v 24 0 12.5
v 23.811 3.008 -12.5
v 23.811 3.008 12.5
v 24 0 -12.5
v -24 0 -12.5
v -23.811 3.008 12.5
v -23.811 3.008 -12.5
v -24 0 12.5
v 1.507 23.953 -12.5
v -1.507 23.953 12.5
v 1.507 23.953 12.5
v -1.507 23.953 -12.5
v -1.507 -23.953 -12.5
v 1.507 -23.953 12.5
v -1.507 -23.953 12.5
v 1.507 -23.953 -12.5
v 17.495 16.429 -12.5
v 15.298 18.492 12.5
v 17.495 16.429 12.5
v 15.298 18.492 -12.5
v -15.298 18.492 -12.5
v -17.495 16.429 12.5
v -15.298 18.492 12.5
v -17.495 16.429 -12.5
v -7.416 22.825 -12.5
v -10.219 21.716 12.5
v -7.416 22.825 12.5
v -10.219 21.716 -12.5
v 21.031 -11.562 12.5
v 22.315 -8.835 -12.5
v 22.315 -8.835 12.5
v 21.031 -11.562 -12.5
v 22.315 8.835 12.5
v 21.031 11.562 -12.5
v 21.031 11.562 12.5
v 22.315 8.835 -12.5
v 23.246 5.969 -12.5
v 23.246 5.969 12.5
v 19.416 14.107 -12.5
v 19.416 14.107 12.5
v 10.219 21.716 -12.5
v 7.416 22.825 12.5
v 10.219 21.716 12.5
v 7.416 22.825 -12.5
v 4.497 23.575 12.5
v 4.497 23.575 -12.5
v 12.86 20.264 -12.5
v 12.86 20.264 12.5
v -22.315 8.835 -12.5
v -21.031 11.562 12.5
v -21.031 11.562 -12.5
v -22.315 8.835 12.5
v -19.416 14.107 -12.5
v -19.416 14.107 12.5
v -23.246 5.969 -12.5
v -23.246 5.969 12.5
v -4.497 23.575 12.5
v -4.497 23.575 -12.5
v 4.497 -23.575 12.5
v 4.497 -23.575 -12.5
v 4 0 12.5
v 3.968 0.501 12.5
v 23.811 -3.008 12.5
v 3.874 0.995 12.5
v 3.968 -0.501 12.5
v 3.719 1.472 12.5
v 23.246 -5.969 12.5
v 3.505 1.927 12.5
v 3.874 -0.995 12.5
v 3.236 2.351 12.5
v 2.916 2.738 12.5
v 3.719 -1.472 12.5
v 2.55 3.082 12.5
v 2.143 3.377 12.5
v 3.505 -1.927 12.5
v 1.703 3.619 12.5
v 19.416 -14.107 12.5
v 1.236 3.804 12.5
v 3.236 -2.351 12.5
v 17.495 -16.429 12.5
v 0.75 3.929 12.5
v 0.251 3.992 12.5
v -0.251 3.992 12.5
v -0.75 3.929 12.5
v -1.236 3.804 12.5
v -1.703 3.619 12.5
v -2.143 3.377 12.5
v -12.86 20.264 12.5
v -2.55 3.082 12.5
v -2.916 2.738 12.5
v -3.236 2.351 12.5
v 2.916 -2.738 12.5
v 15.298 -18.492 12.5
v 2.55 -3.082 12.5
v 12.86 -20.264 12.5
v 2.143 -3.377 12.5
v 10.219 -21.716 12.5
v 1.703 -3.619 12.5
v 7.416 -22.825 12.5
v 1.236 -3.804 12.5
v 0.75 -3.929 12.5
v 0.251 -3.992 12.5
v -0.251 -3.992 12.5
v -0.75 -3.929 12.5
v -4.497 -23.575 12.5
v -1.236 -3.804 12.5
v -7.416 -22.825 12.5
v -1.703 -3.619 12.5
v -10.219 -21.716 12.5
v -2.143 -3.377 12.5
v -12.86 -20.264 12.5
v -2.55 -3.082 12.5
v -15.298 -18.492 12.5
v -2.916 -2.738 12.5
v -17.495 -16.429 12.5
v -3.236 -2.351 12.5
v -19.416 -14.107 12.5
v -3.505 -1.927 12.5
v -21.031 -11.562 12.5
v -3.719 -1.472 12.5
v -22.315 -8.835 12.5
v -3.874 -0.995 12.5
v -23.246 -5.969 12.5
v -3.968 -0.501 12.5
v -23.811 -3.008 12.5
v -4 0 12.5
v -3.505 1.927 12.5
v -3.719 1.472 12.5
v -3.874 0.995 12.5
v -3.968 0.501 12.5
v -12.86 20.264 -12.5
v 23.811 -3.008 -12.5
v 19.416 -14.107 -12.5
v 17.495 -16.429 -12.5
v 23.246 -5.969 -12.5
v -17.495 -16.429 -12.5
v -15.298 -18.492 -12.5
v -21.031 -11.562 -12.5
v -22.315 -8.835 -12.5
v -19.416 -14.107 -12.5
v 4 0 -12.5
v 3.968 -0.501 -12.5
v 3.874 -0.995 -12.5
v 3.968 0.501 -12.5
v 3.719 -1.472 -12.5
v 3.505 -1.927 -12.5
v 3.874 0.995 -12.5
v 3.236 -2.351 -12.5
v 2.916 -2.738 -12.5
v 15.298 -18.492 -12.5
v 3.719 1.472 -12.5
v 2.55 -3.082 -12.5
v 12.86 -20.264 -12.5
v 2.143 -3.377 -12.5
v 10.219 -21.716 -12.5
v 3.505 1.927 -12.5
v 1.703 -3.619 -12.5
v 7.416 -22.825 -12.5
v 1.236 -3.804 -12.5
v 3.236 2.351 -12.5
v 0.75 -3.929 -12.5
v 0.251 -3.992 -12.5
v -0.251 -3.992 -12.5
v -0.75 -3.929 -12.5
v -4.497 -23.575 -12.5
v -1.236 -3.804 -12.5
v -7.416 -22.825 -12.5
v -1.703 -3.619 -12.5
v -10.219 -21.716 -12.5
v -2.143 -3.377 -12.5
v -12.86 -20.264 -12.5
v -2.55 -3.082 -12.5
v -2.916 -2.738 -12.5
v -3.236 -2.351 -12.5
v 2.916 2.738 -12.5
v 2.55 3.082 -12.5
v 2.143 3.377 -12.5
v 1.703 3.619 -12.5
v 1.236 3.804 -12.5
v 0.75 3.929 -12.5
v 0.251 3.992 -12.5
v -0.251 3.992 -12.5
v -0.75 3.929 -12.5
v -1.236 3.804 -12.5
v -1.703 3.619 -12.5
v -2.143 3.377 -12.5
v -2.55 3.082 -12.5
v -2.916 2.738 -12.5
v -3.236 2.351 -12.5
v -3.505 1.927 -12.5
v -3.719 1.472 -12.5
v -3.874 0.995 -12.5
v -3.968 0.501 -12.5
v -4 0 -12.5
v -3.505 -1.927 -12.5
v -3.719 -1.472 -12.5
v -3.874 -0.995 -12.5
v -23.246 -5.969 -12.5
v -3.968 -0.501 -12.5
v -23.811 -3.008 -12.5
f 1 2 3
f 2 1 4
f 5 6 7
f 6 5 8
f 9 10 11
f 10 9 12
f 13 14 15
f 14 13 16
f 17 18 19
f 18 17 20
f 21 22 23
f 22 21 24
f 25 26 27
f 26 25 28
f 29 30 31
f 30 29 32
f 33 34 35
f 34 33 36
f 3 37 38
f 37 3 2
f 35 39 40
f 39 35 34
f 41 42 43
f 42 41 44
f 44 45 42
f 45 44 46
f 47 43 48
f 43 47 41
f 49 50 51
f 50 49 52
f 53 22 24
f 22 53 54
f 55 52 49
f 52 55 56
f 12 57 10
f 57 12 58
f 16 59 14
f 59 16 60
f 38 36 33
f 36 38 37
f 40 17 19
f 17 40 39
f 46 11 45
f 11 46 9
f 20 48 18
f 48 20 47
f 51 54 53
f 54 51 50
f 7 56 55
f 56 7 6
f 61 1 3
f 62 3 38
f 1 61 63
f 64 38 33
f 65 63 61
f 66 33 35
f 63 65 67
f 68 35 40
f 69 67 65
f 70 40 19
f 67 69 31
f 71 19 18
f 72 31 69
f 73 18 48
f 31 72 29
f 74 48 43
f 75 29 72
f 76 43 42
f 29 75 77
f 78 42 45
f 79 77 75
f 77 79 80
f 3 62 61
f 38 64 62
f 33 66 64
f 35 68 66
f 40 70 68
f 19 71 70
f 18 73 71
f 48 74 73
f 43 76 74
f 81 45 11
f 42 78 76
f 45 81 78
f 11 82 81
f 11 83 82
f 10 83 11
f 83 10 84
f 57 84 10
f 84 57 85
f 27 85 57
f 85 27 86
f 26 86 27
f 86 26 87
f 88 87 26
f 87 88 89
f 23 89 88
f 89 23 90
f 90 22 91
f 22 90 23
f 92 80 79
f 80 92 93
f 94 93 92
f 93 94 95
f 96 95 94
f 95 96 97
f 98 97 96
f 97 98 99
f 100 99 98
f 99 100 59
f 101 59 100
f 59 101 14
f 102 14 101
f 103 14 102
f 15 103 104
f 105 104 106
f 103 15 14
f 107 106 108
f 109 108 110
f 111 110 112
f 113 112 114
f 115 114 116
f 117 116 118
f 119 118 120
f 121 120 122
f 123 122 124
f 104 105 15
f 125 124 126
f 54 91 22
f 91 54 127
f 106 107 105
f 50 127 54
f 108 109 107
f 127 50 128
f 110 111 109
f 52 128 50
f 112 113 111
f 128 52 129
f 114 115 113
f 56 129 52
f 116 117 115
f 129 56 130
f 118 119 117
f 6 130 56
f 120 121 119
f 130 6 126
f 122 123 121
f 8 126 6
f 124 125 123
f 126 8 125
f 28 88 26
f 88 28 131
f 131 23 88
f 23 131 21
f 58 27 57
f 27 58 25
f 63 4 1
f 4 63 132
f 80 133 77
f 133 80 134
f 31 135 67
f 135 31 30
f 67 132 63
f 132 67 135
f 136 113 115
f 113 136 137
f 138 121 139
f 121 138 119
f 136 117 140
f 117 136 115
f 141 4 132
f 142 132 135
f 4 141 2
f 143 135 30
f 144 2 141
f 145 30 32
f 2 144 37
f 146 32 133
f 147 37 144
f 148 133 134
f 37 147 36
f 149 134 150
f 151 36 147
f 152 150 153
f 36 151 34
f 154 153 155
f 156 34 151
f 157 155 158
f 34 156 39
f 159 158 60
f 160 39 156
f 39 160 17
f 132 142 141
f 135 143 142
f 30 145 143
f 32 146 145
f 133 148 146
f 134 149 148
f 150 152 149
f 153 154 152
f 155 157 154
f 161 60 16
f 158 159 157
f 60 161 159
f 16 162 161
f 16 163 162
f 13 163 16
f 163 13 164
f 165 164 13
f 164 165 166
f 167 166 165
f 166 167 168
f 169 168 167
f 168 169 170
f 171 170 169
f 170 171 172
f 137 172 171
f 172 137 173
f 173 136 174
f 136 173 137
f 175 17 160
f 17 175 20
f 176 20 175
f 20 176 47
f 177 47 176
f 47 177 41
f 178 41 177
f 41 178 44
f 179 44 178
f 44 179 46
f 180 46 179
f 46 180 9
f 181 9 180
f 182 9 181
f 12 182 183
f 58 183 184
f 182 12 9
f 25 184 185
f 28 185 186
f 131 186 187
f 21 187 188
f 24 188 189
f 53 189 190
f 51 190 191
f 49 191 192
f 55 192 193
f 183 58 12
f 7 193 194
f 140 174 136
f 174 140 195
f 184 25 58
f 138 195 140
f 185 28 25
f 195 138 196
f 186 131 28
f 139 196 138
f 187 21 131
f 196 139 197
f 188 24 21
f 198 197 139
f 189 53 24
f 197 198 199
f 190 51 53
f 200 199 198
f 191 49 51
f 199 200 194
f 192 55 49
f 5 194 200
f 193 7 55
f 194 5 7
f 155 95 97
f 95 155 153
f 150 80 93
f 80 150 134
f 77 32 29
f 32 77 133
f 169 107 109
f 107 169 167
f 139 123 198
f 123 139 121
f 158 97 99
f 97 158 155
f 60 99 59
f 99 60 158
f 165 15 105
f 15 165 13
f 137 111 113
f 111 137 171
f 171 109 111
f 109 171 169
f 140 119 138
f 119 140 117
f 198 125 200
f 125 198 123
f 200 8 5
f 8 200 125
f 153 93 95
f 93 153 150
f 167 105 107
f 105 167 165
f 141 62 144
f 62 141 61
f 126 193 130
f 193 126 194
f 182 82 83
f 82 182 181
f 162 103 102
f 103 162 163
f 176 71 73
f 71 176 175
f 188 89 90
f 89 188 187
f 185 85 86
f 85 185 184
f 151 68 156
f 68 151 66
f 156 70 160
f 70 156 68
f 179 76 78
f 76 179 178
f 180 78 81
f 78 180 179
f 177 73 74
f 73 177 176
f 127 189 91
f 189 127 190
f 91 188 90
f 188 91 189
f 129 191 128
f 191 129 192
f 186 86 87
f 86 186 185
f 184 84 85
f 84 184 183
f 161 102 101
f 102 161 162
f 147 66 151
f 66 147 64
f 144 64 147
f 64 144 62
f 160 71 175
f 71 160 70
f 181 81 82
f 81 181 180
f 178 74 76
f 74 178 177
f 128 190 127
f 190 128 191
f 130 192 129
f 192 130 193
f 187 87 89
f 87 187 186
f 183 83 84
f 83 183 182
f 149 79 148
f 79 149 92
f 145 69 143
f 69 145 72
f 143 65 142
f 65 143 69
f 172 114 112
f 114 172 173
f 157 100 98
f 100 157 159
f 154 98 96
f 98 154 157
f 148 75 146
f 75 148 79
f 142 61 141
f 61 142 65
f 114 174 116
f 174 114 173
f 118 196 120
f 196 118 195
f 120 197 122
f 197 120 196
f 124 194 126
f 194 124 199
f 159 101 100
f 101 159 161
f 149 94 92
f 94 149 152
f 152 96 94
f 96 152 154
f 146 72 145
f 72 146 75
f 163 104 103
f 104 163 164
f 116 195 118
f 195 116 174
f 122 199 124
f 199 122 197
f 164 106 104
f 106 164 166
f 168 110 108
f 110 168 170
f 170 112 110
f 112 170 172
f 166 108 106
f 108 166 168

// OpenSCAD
$fn = 50;


difference() {
	union() {
		translate(v = [0, 0, -12.5000000000]) {
			cylinder(h = 25, r = 24.0000000000);
		}
	}
	union() {
		translate(v = [0, 0, -100.0000000000]) {
			cylinder(h = 200, r = 4.0000000000);
		}
	}
}
